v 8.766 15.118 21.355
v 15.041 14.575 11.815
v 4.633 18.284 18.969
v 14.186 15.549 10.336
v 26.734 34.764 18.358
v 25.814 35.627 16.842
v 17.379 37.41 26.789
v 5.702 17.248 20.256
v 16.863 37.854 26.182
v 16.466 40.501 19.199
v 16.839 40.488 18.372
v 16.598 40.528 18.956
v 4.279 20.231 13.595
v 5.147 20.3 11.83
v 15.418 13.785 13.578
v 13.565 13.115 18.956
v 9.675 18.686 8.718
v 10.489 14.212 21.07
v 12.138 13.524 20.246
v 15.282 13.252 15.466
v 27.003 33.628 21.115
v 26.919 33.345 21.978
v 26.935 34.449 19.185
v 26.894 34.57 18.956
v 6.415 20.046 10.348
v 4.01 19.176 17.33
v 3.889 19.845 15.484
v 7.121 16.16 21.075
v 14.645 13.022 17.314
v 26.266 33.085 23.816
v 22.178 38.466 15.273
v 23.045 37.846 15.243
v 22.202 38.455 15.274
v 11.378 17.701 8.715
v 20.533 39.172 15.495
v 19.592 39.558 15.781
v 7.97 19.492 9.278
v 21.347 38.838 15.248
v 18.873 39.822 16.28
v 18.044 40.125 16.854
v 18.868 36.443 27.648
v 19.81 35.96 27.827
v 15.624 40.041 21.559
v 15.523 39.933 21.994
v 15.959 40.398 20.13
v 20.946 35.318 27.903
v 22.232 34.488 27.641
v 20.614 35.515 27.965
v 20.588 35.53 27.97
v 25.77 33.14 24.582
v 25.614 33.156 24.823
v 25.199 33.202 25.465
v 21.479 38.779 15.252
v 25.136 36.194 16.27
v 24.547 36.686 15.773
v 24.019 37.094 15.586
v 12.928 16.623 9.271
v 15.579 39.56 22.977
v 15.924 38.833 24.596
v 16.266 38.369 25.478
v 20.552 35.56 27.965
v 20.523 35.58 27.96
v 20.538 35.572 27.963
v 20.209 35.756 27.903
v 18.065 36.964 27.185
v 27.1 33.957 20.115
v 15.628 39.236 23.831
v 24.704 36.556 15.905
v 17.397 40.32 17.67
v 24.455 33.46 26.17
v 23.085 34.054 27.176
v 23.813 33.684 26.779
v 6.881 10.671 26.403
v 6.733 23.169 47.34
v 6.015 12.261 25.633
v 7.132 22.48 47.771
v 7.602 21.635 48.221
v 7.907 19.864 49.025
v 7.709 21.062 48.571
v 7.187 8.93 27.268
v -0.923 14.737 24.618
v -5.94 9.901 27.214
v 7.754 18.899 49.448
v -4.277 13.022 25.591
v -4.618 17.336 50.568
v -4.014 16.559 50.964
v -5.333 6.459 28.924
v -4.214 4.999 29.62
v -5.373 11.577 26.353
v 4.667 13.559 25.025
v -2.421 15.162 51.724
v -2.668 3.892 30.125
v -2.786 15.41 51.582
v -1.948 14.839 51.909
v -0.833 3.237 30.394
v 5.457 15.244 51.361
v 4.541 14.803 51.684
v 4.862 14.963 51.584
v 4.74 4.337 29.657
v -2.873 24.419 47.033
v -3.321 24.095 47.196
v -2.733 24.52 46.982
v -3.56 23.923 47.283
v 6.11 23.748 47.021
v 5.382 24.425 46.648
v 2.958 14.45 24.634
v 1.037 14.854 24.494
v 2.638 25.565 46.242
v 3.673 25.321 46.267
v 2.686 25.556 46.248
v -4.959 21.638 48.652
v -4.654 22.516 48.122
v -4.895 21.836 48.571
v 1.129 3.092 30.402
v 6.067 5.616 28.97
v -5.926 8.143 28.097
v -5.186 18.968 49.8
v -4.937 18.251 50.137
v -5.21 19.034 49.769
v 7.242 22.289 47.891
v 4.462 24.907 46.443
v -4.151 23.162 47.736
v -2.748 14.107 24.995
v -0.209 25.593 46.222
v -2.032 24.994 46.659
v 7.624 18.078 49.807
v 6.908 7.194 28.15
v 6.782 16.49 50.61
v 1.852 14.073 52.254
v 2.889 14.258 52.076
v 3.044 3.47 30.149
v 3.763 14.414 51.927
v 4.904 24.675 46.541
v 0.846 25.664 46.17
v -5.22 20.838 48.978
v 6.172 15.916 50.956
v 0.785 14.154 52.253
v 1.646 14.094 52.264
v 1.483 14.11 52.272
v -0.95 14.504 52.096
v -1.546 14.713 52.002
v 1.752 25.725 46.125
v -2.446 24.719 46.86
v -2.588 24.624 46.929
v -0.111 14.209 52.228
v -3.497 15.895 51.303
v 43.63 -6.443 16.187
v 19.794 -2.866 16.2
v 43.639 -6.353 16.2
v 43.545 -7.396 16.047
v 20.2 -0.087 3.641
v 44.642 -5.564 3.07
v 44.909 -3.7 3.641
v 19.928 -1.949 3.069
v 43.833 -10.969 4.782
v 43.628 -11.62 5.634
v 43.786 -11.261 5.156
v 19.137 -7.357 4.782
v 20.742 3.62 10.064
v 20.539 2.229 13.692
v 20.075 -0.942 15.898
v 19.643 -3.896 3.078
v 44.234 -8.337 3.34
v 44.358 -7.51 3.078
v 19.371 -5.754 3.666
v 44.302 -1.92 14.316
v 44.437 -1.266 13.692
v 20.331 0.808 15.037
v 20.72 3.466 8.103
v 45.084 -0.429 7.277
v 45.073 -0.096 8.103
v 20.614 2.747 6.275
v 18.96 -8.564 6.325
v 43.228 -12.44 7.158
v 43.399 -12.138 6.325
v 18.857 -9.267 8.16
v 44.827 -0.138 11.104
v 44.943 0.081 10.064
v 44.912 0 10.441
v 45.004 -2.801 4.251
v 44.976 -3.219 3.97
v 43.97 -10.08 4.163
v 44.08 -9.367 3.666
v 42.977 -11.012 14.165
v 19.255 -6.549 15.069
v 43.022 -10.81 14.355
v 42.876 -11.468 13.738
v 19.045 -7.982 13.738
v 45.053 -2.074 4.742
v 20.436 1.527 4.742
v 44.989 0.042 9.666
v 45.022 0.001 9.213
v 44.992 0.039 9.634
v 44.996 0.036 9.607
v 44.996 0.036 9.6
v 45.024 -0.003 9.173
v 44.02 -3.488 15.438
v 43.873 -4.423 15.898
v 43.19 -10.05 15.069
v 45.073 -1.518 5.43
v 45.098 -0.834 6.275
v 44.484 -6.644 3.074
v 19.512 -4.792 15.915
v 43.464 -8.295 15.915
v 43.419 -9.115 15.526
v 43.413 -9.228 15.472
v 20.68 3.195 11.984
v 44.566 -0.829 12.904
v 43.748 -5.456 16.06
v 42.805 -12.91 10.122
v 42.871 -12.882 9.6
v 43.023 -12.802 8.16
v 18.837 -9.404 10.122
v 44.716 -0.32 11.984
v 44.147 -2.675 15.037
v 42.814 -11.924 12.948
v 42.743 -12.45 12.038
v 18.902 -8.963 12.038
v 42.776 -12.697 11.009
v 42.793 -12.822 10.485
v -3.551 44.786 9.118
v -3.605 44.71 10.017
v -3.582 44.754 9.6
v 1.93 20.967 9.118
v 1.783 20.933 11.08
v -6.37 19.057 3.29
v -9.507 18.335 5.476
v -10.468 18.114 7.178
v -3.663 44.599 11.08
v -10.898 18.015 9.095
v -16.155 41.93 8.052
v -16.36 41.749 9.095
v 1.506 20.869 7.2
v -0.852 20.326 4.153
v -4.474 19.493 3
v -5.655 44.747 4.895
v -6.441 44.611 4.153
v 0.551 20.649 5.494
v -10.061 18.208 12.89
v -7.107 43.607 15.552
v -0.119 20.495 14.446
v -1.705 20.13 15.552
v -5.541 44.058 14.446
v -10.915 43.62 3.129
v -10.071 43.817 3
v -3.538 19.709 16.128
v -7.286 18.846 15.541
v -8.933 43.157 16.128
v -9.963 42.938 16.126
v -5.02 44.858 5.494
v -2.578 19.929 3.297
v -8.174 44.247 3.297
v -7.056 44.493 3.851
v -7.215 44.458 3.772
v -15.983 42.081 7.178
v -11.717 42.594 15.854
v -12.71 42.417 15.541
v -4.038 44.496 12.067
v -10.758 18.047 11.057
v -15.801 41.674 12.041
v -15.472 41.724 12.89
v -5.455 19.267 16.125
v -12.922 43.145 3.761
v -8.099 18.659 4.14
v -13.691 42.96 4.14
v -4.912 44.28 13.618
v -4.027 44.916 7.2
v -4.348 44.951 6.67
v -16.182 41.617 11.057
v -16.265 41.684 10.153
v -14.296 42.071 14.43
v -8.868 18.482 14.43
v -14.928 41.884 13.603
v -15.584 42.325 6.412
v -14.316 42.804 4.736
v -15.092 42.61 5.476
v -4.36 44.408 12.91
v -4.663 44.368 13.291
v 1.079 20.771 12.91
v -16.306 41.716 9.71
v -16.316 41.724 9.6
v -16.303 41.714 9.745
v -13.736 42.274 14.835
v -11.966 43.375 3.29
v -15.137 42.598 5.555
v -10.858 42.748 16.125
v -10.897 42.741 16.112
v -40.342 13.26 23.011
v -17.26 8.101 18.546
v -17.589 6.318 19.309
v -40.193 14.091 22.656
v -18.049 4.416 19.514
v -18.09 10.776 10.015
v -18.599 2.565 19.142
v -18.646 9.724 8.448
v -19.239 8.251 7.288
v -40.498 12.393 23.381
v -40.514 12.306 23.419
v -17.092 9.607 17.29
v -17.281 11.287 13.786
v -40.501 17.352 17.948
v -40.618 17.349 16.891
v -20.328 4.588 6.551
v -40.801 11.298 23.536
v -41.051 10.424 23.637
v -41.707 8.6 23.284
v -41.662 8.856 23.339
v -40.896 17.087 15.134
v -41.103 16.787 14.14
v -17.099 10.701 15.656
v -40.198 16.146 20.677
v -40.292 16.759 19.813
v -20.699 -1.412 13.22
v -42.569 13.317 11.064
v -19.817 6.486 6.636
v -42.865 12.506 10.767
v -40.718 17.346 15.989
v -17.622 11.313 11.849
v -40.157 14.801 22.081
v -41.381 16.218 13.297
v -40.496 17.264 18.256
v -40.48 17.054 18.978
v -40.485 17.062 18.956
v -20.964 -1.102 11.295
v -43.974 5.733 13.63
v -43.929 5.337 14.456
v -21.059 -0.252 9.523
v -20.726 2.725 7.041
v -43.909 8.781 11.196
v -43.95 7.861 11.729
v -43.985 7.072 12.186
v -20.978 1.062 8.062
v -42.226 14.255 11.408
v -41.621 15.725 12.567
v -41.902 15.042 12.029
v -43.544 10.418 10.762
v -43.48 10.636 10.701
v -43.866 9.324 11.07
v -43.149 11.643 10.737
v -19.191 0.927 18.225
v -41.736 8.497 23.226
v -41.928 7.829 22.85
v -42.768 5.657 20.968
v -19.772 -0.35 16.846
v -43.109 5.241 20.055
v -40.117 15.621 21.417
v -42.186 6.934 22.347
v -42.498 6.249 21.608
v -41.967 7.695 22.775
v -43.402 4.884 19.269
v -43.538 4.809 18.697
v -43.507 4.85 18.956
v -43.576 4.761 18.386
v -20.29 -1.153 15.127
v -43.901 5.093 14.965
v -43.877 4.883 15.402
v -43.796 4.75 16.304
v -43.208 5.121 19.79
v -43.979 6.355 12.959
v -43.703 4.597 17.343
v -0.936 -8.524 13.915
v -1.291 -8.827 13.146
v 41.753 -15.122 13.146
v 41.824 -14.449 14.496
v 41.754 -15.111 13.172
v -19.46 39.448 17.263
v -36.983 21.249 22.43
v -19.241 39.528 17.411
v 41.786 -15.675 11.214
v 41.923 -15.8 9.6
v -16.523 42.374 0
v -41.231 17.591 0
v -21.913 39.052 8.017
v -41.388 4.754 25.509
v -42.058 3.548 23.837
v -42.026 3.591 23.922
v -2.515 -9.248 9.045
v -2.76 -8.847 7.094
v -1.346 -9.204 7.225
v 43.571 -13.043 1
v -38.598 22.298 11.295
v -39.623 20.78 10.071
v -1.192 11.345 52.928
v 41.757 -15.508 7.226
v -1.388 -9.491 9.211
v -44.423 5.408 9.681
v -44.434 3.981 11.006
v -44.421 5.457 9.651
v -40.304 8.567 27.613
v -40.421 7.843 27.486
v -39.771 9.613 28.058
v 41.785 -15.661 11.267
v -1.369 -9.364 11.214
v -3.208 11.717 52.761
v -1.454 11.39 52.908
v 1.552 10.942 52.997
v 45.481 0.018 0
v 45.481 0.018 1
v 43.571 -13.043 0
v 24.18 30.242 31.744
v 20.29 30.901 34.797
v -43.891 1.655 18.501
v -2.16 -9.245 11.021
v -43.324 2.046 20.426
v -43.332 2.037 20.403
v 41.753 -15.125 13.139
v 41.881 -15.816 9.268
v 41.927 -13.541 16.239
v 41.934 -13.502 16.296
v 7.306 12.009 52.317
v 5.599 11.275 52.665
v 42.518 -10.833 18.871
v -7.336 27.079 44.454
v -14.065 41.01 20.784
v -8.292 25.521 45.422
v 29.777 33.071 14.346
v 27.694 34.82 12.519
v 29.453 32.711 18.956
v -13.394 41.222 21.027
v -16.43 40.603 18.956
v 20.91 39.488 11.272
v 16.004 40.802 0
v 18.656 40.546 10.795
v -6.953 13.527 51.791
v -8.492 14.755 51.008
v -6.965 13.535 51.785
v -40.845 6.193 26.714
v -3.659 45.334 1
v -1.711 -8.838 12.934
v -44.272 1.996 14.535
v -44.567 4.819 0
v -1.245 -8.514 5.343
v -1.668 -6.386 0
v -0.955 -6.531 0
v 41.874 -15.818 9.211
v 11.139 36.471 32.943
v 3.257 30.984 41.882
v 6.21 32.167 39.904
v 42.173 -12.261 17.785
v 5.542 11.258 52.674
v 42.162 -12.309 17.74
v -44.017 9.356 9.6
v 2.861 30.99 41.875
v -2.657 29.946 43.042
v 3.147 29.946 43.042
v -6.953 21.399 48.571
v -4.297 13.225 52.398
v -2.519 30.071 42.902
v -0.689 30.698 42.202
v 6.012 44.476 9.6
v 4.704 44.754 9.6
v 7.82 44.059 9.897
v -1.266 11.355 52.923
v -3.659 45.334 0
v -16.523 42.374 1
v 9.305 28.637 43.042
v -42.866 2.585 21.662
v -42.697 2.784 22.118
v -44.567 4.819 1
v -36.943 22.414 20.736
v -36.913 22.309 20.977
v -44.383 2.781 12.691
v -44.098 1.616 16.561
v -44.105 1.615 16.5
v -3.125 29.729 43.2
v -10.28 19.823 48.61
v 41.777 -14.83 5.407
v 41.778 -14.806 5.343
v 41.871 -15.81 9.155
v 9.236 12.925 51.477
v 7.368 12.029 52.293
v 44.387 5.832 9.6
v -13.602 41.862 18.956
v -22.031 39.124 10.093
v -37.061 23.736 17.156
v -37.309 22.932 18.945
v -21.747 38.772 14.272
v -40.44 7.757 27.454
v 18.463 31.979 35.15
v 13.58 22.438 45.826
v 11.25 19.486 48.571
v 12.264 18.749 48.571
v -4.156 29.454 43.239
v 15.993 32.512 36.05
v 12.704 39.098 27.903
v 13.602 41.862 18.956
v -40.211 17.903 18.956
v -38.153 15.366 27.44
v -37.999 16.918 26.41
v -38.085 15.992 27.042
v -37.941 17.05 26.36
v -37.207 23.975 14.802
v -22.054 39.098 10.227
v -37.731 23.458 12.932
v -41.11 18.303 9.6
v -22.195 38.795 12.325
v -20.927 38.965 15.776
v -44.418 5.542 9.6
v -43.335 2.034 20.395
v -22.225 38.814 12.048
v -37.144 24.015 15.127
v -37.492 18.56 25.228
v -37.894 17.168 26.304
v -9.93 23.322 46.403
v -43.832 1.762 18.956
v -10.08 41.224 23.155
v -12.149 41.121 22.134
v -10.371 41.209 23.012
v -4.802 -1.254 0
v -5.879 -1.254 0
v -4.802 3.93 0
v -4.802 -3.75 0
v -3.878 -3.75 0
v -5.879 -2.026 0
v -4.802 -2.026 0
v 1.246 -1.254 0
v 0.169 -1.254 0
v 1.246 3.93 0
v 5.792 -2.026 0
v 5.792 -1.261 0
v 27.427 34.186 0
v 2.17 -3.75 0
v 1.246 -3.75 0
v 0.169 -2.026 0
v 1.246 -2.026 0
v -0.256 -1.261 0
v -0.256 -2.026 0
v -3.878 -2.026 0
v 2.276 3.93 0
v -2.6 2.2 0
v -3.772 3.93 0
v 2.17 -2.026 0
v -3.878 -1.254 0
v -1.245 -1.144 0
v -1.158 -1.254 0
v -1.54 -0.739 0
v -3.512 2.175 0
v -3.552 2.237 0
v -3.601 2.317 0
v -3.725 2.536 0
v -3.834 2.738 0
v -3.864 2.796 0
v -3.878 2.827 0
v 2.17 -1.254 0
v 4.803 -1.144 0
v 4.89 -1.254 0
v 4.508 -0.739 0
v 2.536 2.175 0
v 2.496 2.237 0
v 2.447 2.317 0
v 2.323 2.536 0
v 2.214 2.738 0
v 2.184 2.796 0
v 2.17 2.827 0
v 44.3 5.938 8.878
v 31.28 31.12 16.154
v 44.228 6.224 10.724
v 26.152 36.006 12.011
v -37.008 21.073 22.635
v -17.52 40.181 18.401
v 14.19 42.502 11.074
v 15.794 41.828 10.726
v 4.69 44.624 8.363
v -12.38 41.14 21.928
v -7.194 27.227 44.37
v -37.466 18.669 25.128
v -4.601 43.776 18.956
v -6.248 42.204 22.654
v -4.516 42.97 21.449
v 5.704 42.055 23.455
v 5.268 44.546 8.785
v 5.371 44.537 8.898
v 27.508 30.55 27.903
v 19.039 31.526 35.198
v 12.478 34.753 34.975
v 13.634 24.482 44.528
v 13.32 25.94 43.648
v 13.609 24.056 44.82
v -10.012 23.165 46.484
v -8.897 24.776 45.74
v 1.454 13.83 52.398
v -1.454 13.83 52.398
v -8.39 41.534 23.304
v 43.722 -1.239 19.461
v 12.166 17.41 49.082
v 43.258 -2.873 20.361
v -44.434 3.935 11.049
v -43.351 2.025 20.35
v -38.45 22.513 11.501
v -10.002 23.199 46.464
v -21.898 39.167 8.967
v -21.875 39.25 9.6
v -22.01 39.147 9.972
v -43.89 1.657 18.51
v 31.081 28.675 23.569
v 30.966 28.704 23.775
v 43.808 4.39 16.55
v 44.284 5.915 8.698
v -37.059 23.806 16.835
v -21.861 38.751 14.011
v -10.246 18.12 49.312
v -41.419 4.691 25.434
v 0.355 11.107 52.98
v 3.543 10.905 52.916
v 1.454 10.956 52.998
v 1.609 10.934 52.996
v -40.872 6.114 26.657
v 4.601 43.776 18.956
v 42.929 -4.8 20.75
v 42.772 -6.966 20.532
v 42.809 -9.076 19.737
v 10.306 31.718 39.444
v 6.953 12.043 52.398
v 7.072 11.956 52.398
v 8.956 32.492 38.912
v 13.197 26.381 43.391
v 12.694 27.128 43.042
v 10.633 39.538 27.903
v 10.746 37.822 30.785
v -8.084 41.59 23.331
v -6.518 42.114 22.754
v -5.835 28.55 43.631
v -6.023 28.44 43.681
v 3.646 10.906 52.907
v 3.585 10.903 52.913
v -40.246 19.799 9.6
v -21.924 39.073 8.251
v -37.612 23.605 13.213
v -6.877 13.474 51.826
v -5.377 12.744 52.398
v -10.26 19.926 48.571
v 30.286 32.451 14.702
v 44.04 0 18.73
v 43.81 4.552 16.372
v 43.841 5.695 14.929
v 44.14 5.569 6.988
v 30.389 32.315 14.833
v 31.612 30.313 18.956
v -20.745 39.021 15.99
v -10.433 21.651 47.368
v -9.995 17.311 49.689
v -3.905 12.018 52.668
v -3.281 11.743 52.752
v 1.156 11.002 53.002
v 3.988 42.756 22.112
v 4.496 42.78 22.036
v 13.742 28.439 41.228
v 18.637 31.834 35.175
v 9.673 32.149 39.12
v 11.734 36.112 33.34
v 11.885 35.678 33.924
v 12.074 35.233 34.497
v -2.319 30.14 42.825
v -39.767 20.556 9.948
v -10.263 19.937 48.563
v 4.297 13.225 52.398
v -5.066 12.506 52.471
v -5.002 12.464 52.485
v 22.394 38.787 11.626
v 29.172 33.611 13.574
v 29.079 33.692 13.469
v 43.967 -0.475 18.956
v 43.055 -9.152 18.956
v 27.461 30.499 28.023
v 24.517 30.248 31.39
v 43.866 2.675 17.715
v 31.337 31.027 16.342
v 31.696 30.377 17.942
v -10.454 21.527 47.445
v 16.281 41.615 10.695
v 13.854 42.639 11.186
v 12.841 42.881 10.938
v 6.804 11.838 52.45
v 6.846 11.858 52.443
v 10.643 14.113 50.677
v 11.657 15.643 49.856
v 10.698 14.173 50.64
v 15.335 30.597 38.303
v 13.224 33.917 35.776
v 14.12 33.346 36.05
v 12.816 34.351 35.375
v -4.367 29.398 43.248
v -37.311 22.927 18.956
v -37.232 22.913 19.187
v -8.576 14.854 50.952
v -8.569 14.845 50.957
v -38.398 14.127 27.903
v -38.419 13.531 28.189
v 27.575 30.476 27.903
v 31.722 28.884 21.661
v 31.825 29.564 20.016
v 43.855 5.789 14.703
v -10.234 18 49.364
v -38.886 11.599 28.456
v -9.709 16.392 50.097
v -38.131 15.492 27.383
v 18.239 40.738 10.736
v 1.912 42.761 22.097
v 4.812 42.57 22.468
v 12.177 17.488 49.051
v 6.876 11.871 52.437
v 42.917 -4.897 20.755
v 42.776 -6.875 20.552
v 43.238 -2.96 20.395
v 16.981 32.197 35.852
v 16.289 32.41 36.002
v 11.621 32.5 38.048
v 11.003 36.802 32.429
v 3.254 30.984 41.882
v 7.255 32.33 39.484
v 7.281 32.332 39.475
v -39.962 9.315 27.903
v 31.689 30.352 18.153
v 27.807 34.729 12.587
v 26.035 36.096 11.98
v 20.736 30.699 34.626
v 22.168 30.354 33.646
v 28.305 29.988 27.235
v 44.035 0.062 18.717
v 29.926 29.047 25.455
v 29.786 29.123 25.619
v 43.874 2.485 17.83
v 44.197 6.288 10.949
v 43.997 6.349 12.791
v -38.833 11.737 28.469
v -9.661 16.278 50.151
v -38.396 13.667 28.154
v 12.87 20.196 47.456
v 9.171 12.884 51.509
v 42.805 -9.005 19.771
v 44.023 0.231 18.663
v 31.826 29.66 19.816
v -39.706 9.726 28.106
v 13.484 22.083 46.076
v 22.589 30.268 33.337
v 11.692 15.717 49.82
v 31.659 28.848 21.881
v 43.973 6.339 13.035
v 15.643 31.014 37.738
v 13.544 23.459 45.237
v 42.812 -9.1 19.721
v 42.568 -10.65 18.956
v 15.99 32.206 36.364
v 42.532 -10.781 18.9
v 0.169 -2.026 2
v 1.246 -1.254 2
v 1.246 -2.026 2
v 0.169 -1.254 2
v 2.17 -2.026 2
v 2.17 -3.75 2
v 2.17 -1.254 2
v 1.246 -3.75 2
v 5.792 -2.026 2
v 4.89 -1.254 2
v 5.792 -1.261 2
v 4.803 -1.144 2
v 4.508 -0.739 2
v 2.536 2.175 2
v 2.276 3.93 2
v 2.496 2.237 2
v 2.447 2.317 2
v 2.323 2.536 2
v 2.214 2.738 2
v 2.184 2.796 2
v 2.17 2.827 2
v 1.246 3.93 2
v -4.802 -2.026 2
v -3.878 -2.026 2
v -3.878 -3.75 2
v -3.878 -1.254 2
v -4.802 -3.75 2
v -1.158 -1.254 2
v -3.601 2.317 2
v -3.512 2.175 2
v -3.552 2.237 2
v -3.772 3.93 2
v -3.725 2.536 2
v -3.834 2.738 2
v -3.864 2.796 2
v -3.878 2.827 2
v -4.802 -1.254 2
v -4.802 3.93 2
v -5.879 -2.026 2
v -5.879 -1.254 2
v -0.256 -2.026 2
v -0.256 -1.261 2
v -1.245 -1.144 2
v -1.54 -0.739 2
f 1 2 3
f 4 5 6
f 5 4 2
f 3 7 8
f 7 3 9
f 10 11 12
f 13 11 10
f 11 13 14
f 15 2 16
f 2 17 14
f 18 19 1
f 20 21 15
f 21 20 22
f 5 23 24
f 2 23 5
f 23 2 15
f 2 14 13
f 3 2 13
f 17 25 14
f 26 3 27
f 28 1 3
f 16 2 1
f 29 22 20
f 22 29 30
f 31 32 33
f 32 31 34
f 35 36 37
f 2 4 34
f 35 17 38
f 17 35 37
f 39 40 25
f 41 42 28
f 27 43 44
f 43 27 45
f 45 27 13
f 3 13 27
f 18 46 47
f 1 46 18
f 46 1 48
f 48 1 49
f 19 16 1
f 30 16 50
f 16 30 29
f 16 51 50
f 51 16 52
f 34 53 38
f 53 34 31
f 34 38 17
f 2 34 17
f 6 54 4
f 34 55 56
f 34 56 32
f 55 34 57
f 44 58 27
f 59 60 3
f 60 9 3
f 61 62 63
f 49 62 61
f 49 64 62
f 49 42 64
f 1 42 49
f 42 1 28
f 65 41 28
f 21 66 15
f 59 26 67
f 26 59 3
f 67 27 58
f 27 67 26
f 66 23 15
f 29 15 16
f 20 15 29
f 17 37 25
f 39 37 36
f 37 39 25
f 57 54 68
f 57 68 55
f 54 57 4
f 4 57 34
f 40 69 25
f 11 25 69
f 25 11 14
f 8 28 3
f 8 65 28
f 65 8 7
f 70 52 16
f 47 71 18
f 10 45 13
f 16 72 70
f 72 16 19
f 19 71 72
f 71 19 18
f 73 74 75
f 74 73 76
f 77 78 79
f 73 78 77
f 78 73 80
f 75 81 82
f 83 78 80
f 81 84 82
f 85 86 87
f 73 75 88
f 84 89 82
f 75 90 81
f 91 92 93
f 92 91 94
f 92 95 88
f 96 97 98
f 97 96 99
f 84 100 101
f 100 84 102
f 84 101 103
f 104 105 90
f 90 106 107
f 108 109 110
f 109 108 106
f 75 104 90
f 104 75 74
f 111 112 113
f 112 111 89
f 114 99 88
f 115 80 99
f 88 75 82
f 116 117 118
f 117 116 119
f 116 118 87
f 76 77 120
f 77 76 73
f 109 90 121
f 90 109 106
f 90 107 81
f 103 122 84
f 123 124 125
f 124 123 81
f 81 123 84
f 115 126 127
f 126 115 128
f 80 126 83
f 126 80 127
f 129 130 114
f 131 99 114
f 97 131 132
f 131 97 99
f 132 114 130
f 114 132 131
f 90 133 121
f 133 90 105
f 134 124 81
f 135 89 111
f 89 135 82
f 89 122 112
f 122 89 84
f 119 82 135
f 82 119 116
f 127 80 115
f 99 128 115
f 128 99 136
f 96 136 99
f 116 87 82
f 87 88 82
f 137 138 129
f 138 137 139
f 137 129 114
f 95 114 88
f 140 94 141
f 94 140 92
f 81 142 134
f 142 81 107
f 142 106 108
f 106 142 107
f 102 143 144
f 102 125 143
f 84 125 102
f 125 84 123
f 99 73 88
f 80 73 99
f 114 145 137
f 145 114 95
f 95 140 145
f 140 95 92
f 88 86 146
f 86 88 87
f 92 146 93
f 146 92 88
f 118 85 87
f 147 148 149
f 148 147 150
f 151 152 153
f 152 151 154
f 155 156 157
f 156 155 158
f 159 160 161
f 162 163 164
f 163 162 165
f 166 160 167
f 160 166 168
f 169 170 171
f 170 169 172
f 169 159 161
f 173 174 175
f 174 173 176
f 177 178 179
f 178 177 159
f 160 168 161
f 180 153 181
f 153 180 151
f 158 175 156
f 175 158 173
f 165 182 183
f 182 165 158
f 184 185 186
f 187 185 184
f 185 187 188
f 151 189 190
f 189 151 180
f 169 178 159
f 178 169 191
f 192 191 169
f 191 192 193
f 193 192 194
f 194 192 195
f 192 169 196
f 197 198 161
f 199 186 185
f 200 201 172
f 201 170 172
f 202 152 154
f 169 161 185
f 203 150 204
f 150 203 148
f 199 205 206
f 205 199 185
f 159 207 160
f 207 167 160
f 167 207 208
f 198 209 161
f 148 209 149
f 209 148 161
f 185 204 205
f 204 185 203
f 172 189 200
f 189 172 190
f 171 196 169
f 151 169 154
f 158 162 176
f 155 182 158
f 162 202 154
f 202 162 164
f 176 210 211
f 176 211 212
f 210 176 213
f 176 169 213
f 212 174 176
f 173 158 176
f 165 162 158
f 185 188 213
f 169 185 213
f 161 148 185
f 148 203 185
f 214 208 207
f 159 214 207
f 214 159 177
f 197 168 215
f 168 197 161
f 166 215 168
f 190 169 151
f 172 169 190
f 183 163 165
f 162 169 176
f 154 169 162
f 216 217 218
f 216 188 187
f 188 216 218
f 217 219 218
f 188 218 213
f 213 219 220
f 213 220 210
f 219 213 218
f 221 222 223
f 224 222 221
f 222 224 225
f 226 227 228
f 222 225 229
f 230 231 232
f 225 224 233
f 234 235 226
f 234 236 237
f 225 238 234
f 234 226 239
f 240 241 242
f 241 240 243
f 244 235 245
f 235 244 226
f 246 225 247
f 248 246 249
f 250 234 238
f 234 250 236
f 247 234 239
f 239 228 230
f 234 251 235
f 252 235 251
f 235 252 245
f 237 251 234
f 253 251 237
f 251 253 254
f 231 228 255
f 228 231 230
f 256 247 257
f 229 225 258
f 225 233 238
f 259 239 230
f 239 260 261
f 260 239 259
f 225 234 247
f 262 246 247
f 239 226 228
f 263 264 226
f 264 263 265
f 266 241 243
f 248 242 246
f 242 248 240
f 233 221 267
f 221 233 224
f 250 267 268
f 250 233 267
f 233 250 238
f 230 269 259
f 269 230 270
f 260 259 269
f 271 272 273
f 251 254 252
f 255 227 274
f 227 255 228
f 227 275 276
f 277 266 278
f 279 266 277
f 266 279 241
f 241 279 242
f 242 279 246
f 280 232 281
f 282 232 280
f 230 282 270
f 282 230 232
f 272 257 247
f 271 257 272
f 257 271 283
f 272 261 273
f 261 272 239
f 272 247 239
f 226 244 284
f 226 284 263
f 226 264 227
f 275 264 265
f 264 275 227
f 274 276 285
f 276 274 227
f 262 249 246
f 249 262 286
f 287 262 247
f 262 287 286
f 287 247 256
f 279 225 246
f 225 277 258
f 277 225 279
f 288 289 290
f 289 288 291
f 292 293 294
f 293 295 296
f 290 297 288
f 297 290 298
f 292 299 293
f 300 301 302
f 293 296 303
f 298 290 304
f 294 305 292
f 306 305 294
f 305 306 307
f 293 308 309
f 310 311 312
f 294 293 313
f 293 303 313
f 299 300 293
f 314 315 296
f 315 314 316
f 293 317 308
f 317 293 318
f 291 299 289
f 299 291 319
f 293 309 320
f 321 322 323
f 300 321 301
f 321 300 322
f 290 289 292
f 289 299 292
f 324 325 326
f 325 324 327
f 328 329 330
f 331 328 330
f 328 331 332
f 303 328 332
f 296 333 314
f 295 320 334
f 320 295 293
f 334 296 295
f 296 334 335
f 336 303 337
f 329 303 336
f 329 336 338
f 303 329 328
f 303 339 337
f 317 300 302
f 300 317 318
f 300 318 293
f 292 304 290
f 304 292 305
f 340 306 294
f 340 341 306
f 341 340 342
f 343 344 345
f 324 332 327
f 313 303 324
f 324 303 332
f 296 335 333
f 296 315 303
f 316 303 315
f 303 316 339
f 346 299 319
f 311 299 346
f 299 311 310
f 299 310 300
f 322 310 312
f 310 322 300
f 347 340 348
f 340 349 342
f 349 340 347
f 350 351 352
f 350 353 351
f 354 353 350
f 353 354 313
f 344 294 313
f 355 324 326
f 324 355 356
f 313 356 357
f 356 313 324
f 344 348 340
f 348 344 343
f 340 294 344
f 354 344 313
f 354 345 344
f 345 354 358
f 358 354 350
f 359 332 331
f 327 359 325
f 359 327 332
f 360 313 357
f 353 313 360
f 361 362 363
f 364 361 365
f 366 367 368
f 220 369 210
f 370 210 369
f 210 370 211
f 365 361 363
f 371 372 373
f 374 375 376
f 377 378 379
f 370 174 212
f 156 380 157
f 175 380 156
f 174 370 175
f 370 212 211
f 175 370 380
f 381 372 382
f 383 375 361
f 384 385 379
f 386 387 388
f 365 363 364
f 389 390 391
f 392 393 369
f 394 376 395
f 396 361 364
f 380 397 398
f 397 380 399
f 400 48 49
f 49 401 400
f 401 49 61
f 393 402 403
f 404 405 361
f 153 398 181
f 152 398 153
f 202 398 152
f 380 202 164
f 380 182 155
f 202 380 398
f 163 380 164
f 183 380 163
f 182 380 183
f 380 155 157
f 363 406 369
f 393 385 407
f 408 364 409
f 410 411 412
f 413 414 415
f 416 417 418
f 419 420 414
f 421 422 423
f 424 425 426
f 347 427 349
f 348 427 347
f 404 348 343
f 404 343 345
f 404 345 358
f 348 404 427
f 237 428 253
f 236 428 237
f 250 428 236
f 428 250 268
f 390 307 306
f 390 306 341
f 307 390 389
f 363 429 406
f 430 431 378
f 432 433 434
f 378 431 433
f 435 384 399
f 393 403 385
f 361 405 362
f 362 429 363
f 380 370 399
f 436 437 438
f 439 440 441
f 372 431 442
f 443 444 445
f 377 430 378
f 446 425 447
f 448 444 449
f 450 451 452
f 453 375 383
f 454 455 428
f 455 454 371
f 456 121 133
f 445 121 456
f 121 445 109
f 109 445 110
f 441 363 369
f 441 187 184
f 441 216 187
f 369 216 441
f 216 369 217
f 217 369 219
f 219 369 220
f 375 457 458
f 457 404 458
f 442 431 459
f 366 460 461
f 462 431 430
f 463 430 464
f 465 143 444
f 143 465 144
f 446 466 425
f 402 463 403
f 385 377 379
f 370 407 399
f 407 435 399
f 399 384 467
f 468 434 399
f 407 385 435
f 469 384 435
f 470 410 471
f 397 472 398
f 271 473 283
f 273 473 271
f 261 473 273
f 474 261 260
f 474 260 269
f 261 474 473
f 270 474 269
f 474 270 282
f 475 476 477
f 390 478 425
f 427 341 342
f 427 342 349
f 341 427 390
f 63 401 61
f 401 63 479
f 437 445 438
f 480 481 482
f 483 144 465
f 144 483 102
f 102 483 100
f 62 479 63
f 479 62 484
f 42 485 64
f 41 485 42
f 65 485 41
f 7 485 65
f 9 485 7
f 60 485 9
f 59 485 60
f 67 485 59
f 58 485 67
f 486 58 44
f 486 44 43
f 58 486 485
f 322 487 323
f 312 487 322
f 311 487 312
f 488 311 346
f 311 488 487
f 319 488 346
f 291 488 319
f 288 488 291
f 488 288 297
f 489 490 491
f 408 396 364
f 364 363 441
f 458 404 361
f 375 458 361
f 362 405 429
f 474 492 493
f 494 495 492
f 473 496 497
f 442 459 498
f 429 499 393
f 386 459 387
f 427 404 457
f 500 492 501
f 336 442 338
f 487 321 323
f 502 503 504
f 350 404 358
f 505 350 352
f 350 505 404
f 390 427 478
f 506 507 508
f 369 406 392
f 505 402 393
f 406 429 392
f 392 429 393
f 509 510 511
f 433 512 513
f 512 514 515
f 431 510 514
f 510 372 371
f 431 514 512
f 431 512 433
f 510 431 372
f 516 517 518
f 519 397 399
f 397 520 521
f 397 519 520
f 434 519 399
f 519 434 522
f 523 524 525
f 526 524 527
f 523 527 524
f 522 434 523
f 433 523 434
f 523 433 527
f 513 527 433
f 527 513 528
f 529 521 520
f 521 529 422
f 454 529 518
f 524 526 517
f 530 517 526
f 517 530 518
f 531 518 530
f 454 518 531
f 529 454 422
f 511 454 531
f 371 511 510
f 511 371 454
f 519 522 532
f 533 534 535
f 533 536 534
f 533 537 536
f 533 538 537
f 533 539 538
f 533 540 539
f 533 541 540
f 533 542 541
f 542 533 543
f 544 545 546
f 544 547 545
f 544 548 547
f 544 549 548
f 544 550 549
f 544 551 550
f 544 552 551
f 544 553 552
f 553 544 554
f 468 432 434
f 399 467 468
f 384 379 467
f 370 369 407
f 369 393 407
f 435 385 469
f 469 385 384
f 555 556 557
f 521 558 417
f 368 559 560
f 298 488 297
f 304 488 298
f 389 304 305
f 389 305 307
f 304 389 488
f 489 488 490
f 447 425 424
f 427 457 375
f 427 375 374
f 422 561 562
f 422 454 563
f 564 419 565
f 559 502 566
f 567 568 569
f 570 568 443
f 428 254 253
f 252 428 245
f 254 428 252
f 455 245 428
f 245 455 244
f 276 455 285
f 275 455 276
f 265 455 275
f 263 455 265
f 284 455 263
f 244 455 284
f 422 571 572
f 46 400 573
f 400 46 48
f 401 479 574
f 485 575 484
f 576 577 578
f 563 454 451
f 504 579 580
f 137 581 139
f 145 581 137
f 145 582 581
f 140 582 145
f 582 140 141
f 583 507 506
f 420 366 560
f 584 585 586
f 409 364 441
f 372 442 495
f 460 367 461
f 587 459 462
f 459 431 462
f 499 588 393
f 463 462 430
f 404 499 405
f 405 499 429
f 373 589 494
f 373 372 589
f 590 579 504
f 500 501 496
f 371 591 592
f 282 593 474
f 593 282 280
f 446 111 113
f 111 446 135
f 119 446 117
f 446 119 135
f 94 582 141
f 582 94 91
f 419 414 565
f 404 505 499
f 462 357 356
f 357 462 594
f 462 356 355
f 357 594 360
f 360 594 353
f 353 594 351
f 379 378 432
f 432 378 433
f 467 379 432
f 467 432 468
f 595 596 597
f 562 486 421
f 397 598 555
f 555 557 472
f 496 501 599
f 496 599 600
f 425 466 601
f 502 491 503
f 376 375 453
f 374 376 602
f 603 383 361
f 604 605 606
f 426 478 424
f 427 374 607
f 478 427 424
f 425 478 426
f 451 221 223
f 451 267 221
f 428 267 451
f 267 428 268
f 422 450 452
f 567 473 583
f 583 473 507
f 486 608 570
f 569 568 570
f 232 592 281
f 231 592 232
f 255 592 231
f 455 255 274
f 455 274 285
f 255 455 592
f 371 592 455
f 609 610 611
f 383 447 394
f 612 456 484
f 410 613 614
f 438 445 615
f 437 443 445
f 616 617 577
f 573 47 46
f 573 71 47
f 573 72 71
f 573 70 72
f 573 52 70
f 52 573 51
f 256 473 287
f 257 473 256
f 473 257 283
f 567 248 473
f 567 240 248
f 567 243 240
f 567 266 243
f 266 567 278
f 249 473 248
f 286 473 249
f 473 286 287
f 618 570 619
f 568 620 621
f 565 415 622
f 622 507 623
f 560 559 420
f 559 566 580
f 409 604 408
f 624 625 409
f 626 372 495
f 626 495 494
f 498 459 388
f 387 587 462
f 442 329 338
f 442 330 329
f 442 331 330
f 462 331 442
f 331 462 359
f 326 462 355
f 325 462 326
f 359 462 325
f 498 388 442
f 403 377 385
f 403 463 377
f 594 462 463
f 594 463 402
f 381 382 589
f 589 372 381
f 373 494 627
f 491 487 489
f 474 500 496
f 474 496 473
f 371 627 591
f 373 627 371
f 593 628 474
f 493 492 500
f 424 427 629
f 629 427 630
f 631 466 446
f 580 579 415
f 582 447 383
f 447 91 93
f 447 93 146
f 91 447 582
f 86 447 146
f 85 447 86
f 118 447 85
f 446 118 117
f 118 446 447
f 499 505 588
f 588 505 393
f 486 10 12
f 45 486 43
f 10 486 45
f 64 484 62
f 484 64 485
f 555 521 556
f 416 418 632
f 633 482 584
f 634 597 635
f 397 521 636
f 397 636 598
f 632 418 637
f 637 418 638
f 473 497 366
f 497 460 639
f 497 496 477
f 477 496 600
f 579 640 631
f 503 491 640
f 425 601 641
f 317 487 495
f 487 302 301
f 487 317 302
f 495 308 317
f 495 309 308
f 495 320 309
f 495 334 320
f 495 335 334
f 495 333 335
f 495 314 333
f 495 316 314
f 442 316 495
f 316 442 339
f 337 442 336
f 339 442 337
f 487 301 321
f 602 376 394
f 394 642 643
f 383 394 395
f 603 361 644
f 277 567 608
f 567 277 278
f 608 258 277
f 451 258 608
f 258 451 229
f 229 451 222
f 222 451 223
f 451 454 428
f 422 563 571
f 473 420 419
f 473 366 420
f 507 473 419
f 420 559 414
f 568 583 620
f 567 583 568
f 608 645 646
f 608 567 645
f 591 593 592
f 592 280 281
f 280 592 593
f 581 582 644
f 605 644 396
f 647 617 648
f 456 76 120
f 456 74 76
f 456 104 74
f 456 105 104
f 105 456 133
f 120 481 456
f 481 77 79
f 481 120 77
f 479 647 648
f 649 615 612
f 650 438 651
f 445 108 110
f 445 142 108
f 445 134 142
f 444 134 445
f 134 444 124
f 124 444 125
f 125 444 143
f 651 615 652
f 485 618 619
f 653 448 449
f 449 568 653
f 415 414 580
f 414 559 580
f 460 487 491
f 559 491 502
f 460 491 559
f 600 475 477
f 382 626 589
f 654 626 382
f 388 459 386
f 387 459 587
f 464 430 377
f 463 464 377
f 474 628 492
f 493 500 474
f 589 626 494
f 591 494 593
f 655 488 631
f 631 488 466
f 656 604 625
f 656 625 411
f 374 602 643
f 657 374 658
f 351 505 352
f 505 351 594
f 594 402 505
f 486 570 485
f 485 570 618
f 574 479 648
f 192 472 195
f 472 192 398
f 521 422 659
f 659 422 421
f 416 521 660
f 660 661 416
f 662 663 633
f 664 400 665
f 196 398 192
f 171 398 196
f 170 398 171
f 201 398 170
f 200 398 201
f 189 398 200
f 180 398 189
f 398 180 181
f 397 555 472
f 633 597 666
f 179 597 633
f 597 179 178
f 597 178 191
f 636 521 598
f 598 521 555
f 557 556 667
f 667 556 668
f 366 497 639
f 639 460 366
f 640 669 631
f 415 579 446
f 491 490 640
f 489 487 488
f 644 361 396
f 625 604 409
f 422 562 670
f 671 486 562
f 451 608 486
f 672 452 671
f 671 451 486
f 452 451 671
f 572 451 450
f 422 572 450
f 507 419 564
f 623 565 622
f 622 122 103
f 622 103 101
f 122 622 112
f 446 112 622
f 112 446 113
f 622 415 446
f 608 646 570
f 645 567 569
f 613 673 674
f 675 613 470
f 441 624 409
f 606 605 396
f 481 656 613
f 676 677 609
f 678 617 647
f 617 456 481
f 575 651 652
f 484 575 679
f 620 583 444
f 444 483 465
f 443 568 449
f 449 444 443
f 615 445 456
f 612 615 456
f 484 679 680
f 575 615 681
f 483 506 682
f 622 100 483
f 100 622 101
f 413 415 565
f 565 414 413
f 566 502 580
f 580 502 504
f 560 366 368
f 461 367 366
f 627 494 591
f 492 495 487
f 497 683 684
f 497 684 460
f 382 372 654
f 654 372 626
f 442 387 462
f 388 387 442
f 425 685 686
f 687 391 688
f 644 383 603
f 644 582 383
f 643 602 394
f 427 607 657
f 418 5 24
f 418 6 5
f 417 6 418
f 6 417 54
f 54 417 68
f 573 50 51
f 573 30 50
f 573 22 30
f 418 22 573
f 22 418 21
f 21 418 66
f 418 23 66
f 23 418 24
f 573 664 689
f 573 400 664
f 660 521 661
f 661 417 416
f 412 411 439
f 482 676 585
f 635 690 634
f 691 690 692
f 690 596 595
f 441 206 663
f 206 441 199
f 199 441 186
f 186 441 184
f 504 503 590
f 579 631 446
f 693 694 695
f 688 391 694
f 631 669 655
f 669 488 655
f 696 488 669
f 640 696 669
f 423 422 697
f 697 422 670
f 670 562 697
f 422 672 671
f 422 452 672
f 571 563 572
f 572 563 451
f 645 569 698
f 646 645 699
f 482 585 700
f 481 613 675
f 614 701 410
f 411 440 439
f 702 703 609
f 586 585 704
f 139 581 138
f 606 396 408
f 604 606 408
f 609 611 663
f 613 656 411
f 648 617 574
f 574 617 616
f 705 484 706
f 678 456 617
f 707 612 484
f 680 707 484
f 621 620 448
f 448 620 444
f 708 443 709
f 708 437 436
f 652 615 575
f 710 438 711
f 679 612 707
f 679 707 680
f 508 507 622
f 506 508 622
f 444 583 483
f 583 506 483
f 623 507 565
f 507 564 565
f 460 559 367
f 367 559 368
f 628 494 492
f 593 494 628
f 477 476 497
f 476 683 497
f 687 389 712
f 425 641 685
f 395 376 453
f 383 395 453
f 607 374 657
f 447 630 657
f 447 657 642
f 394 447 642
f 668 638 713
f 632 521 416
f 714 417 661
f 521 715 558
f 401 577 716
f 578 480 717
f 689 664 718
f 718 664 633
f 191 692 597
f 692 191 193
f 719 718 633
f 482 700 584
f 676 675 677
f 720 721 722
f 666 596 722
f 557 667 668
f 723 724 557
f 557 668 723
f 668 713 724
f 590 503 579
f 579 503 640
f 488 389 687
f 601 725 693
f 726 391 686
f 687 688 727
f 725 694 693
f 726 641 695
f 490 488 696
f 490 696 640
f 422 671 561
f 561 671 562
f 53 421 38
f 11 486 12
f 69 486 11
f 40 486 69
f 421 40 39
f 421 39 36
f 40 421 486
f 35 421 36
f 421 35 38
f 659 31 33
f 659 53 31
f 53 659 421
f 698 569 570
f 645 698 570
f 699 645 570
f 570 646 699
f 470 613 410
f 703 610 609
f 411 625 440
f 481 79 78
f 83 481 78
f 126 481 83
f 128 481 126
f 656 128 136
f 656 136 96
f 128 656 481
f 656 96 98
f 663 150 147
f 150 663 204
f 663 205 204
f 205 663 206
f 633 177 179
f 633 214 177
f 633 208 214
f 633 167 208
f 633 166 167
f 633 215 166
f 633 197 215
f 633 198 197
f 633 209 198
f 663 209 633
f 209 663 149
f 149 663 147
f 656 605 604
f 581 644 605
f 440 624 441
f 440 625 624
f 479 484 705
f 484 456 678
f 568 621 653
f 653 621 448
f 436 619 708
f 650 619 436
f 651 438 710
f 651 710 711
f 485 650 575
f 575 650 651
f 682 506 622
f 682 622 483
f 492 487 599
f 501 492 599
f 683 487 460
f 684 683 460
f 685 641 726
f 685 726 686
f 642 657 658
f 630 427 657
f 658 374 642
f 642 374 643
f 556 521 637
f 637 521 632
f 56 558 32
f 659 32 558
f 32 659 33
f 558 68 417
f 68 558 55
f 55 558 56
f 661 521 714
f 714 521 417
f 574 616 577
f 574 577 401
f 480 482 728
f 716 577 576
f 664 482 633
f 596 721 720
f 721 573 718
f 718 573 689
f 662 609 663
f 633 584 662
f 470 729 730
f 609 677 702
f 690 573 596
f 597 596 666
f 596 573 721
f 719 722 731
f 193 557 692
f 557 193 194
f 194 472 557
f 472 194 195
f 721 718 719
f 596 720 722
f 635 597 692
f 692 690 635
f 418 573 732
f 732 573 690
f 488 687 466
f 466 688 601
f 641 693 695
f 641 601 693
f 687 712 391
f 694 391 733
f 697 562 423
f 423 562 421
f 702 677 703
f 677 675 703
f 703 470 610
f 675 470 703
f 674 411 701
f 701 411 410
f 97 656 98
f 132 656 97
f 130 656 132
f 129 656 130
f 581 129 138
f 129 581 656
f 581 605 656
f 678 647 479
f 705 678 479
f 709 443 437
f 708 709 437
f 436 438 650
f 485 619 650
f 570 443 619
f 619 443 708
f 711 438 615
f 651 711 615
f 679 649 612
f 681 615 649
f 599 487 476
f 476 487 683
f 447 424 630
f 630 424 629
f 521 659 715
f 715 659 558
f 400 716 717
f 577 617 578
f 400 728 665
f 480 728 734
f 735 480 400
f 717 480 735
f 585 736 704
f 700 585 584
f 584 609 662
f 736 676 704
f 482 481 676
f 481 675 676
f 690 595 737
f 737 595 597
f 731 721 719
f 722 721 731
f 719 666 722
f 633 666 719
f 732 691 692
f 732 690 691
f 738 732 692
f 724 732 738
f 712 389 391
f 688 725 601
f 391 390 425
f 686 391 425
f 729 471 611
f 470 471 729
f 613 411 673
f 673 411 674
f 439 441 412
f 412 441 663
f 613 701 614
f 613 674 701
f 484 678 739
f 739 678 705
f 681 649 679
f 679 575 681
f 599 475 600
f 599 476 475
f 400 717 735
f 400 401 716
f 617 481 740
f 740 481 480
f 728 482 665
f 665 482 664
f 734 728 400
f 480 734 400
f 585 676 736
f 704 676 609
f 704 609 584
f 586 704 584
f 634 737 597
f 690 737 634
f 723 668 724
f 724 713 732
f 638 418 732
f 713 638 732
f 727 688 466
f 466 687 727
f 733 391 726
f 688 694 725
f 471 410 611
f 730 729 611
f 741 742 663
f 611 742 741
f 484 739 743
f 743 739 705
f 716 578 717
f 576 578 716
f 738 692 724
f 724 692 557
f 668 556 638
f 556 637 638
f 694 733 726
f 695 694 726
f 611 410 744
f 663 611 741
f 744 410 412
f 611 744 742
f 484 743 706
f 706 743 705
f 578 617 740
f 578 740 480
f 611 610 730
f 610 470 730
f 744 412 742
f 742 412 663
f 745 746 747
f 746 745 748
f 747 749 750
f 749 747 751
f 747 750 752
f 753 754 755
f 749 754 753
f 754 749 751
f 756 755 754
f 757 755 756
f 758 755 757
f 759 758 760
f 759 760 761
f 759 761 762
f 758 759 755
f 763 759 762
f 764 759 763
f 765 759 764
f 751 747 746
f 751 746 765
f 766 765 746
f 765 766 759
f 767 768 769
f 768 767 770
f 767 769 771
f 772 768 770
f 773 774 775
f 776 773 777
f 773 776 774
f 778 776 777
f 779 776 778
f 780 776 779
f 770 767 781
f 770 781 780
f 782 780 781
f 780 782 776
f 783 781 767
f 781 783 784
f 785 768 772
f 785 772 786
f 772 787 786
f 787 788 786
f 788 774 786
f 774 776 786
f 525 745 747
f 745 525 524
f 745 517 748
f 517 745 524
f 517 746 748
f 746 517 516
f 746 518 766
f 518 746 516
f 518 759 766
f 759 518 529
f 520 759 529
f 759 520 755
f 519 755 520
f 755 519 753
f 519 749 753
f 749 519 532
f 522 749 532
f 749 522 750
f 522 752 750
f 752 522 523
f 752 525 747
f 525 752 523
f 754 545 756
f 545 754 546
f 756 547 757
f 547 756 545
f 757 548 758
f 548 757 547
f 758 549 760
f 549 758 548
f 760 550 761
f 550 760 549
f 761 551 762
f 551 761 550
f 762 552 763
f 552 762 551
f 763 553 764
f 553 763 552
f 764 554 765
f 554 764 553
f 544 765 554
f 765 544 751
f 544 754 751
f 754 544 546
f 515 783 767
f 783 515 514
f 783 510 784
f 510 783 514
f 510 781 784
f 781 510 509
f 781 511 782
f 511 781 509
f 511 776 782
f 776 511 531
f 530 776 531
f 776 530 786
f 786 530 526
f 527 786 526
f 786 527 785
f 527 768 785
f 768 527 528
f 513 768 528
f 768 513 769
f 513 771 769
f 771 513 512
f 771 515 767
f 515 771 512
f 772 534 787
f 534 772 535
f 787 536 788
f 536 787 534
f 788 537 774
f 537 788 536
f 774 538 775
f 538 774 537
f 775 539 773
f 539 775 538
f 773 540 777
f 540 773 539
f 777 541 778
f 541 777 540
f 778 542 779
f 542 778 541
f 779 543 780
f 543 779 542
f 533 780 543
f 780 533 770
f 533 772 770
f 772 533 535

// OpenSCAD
difference() {
	difference() {
		difference() {
			hull() {
				union() {
					union() {
						rotate(a = 59.9220671748, v = [0, 0, 1]) {
							translate(v = [0, -6.6000000000, 0]) {
								cube(size = [43.3285938395, 13.2000000000, 1]);
							}
						}
						rotate(a = 86.2367268014, v = [0, 0, 1]) {
							translate(v = [0, -6.6000000000, 0]) {
								cube(size = [20.2408007204, 13.2000000000, 1]);
							}
						}
						rotate(a = -8.3206772549, v = [0, 0, 1]) {
							translate(v = [0, -6.6000000000, 0]) {
								cube(size = [45.0000000000, 13.2000000000, 1]);
							}
						}
						rotate(a = 102.9587717380, v = [0, 0, 1]) {
							translate(v = [0, -6.6000000000, 0]) {
								cube(size = [45.0000000000, 13.2000000000, 1]);
							}
						}
						rotate(a = 165.3615408425, v = [0, 0, 1]) {
							translate(v = [0, -6.6000000000, 0]) {
								cube(size = [44.3381467766, 13.2000000000, 1]);
							}
						}
					}
					translate(v = [0, 0, 9.5999966237]) {
						intersection() {
							hull() {
								rotate(a = 74.3350858760, v = [-0.8332033041, 0.4825623070, 0.0000003506]) {
									cylinder(h = 45, r = 9.6000000000);
								}
								rotate(a = 26.7305078588, v = [-0.4488248045, 0.0295211210, 0.0000004193]) {
									cylinder(h = 45, r = 9.6000000000);
								}
								rotate(a = 89.9999467587, v = [0.1447132978, 0.9894736285, -0.0000011342]) {
									cylinder(h = 45, r = 9.6000000000);
								}
								rotate(a = 89.9999527132, v = [-0.9745316803, -0.2242498698, 0.0000011988]) {
									cylinder(h = 45, r = 9.6000000000);
								}
								rotate(a = 80.1611543915, v = [-0.2490017436, -0.9533094956, 0.0000012023]) {
									cylinder(h = 45, r = 9.6000000000);
								}
							}
							sphere(r = 45);
						}
					}
				}
			}
			translate(v = [0, 0, 9.5999966237]) {
				rotate(a = 74.3350858760, v = [-0.8332033041, 0.4825623070, 0.0000003506]) {
					translate(v = [0, 0, 20]) {
						cylinder(h = 45, r = 6.6000000000);
					}
				}
				rotate(a = 26.7305078588, v = [-0.4488248045, 0.0295211210, 0.0000004193]) {
					translate(v = [0, 0, 20]) {
						cylinder(h = 45, r = 6.6000000000);
					}
				}
				rotate(a = 89.9999467587, v = [0.1447132978, 0.9894736285, -0.0000011342]) {
					translate(v = [0, 0, 20]) {
						cylinder(h = 45, r = 6.6000000000);
					}
				}
				rotate(a = 89.9999527132, v = [-0.9745316803, -0.2242498698, 0.0000011988]) {
					translate(v = [0, 0, 20]) {
						cylinder(h = 45, r = 6.6000000000);
					}
				}
				rotate(a = 80.1611543915, v = [-0.2490017436, -0.9533094956, 0.0000012023]) {
					translate(v = [0, 0, 20]) {
						cylinder(h = 45, r = 6.6000000000);
					}
				}
			}
		}
		translate(v = [-100, -100, -100]) {
			cube(size = [200, 200, 100]);
		}
	}
	translate(v = [0, 0, 2]) {
		rotate(a = 180, v = [0, 1, 0]) {
			linear_extrude(height = 3) {
				text(halign = "center", size = 8, text = "44", valign = "center");
			}
		}
	}
}
